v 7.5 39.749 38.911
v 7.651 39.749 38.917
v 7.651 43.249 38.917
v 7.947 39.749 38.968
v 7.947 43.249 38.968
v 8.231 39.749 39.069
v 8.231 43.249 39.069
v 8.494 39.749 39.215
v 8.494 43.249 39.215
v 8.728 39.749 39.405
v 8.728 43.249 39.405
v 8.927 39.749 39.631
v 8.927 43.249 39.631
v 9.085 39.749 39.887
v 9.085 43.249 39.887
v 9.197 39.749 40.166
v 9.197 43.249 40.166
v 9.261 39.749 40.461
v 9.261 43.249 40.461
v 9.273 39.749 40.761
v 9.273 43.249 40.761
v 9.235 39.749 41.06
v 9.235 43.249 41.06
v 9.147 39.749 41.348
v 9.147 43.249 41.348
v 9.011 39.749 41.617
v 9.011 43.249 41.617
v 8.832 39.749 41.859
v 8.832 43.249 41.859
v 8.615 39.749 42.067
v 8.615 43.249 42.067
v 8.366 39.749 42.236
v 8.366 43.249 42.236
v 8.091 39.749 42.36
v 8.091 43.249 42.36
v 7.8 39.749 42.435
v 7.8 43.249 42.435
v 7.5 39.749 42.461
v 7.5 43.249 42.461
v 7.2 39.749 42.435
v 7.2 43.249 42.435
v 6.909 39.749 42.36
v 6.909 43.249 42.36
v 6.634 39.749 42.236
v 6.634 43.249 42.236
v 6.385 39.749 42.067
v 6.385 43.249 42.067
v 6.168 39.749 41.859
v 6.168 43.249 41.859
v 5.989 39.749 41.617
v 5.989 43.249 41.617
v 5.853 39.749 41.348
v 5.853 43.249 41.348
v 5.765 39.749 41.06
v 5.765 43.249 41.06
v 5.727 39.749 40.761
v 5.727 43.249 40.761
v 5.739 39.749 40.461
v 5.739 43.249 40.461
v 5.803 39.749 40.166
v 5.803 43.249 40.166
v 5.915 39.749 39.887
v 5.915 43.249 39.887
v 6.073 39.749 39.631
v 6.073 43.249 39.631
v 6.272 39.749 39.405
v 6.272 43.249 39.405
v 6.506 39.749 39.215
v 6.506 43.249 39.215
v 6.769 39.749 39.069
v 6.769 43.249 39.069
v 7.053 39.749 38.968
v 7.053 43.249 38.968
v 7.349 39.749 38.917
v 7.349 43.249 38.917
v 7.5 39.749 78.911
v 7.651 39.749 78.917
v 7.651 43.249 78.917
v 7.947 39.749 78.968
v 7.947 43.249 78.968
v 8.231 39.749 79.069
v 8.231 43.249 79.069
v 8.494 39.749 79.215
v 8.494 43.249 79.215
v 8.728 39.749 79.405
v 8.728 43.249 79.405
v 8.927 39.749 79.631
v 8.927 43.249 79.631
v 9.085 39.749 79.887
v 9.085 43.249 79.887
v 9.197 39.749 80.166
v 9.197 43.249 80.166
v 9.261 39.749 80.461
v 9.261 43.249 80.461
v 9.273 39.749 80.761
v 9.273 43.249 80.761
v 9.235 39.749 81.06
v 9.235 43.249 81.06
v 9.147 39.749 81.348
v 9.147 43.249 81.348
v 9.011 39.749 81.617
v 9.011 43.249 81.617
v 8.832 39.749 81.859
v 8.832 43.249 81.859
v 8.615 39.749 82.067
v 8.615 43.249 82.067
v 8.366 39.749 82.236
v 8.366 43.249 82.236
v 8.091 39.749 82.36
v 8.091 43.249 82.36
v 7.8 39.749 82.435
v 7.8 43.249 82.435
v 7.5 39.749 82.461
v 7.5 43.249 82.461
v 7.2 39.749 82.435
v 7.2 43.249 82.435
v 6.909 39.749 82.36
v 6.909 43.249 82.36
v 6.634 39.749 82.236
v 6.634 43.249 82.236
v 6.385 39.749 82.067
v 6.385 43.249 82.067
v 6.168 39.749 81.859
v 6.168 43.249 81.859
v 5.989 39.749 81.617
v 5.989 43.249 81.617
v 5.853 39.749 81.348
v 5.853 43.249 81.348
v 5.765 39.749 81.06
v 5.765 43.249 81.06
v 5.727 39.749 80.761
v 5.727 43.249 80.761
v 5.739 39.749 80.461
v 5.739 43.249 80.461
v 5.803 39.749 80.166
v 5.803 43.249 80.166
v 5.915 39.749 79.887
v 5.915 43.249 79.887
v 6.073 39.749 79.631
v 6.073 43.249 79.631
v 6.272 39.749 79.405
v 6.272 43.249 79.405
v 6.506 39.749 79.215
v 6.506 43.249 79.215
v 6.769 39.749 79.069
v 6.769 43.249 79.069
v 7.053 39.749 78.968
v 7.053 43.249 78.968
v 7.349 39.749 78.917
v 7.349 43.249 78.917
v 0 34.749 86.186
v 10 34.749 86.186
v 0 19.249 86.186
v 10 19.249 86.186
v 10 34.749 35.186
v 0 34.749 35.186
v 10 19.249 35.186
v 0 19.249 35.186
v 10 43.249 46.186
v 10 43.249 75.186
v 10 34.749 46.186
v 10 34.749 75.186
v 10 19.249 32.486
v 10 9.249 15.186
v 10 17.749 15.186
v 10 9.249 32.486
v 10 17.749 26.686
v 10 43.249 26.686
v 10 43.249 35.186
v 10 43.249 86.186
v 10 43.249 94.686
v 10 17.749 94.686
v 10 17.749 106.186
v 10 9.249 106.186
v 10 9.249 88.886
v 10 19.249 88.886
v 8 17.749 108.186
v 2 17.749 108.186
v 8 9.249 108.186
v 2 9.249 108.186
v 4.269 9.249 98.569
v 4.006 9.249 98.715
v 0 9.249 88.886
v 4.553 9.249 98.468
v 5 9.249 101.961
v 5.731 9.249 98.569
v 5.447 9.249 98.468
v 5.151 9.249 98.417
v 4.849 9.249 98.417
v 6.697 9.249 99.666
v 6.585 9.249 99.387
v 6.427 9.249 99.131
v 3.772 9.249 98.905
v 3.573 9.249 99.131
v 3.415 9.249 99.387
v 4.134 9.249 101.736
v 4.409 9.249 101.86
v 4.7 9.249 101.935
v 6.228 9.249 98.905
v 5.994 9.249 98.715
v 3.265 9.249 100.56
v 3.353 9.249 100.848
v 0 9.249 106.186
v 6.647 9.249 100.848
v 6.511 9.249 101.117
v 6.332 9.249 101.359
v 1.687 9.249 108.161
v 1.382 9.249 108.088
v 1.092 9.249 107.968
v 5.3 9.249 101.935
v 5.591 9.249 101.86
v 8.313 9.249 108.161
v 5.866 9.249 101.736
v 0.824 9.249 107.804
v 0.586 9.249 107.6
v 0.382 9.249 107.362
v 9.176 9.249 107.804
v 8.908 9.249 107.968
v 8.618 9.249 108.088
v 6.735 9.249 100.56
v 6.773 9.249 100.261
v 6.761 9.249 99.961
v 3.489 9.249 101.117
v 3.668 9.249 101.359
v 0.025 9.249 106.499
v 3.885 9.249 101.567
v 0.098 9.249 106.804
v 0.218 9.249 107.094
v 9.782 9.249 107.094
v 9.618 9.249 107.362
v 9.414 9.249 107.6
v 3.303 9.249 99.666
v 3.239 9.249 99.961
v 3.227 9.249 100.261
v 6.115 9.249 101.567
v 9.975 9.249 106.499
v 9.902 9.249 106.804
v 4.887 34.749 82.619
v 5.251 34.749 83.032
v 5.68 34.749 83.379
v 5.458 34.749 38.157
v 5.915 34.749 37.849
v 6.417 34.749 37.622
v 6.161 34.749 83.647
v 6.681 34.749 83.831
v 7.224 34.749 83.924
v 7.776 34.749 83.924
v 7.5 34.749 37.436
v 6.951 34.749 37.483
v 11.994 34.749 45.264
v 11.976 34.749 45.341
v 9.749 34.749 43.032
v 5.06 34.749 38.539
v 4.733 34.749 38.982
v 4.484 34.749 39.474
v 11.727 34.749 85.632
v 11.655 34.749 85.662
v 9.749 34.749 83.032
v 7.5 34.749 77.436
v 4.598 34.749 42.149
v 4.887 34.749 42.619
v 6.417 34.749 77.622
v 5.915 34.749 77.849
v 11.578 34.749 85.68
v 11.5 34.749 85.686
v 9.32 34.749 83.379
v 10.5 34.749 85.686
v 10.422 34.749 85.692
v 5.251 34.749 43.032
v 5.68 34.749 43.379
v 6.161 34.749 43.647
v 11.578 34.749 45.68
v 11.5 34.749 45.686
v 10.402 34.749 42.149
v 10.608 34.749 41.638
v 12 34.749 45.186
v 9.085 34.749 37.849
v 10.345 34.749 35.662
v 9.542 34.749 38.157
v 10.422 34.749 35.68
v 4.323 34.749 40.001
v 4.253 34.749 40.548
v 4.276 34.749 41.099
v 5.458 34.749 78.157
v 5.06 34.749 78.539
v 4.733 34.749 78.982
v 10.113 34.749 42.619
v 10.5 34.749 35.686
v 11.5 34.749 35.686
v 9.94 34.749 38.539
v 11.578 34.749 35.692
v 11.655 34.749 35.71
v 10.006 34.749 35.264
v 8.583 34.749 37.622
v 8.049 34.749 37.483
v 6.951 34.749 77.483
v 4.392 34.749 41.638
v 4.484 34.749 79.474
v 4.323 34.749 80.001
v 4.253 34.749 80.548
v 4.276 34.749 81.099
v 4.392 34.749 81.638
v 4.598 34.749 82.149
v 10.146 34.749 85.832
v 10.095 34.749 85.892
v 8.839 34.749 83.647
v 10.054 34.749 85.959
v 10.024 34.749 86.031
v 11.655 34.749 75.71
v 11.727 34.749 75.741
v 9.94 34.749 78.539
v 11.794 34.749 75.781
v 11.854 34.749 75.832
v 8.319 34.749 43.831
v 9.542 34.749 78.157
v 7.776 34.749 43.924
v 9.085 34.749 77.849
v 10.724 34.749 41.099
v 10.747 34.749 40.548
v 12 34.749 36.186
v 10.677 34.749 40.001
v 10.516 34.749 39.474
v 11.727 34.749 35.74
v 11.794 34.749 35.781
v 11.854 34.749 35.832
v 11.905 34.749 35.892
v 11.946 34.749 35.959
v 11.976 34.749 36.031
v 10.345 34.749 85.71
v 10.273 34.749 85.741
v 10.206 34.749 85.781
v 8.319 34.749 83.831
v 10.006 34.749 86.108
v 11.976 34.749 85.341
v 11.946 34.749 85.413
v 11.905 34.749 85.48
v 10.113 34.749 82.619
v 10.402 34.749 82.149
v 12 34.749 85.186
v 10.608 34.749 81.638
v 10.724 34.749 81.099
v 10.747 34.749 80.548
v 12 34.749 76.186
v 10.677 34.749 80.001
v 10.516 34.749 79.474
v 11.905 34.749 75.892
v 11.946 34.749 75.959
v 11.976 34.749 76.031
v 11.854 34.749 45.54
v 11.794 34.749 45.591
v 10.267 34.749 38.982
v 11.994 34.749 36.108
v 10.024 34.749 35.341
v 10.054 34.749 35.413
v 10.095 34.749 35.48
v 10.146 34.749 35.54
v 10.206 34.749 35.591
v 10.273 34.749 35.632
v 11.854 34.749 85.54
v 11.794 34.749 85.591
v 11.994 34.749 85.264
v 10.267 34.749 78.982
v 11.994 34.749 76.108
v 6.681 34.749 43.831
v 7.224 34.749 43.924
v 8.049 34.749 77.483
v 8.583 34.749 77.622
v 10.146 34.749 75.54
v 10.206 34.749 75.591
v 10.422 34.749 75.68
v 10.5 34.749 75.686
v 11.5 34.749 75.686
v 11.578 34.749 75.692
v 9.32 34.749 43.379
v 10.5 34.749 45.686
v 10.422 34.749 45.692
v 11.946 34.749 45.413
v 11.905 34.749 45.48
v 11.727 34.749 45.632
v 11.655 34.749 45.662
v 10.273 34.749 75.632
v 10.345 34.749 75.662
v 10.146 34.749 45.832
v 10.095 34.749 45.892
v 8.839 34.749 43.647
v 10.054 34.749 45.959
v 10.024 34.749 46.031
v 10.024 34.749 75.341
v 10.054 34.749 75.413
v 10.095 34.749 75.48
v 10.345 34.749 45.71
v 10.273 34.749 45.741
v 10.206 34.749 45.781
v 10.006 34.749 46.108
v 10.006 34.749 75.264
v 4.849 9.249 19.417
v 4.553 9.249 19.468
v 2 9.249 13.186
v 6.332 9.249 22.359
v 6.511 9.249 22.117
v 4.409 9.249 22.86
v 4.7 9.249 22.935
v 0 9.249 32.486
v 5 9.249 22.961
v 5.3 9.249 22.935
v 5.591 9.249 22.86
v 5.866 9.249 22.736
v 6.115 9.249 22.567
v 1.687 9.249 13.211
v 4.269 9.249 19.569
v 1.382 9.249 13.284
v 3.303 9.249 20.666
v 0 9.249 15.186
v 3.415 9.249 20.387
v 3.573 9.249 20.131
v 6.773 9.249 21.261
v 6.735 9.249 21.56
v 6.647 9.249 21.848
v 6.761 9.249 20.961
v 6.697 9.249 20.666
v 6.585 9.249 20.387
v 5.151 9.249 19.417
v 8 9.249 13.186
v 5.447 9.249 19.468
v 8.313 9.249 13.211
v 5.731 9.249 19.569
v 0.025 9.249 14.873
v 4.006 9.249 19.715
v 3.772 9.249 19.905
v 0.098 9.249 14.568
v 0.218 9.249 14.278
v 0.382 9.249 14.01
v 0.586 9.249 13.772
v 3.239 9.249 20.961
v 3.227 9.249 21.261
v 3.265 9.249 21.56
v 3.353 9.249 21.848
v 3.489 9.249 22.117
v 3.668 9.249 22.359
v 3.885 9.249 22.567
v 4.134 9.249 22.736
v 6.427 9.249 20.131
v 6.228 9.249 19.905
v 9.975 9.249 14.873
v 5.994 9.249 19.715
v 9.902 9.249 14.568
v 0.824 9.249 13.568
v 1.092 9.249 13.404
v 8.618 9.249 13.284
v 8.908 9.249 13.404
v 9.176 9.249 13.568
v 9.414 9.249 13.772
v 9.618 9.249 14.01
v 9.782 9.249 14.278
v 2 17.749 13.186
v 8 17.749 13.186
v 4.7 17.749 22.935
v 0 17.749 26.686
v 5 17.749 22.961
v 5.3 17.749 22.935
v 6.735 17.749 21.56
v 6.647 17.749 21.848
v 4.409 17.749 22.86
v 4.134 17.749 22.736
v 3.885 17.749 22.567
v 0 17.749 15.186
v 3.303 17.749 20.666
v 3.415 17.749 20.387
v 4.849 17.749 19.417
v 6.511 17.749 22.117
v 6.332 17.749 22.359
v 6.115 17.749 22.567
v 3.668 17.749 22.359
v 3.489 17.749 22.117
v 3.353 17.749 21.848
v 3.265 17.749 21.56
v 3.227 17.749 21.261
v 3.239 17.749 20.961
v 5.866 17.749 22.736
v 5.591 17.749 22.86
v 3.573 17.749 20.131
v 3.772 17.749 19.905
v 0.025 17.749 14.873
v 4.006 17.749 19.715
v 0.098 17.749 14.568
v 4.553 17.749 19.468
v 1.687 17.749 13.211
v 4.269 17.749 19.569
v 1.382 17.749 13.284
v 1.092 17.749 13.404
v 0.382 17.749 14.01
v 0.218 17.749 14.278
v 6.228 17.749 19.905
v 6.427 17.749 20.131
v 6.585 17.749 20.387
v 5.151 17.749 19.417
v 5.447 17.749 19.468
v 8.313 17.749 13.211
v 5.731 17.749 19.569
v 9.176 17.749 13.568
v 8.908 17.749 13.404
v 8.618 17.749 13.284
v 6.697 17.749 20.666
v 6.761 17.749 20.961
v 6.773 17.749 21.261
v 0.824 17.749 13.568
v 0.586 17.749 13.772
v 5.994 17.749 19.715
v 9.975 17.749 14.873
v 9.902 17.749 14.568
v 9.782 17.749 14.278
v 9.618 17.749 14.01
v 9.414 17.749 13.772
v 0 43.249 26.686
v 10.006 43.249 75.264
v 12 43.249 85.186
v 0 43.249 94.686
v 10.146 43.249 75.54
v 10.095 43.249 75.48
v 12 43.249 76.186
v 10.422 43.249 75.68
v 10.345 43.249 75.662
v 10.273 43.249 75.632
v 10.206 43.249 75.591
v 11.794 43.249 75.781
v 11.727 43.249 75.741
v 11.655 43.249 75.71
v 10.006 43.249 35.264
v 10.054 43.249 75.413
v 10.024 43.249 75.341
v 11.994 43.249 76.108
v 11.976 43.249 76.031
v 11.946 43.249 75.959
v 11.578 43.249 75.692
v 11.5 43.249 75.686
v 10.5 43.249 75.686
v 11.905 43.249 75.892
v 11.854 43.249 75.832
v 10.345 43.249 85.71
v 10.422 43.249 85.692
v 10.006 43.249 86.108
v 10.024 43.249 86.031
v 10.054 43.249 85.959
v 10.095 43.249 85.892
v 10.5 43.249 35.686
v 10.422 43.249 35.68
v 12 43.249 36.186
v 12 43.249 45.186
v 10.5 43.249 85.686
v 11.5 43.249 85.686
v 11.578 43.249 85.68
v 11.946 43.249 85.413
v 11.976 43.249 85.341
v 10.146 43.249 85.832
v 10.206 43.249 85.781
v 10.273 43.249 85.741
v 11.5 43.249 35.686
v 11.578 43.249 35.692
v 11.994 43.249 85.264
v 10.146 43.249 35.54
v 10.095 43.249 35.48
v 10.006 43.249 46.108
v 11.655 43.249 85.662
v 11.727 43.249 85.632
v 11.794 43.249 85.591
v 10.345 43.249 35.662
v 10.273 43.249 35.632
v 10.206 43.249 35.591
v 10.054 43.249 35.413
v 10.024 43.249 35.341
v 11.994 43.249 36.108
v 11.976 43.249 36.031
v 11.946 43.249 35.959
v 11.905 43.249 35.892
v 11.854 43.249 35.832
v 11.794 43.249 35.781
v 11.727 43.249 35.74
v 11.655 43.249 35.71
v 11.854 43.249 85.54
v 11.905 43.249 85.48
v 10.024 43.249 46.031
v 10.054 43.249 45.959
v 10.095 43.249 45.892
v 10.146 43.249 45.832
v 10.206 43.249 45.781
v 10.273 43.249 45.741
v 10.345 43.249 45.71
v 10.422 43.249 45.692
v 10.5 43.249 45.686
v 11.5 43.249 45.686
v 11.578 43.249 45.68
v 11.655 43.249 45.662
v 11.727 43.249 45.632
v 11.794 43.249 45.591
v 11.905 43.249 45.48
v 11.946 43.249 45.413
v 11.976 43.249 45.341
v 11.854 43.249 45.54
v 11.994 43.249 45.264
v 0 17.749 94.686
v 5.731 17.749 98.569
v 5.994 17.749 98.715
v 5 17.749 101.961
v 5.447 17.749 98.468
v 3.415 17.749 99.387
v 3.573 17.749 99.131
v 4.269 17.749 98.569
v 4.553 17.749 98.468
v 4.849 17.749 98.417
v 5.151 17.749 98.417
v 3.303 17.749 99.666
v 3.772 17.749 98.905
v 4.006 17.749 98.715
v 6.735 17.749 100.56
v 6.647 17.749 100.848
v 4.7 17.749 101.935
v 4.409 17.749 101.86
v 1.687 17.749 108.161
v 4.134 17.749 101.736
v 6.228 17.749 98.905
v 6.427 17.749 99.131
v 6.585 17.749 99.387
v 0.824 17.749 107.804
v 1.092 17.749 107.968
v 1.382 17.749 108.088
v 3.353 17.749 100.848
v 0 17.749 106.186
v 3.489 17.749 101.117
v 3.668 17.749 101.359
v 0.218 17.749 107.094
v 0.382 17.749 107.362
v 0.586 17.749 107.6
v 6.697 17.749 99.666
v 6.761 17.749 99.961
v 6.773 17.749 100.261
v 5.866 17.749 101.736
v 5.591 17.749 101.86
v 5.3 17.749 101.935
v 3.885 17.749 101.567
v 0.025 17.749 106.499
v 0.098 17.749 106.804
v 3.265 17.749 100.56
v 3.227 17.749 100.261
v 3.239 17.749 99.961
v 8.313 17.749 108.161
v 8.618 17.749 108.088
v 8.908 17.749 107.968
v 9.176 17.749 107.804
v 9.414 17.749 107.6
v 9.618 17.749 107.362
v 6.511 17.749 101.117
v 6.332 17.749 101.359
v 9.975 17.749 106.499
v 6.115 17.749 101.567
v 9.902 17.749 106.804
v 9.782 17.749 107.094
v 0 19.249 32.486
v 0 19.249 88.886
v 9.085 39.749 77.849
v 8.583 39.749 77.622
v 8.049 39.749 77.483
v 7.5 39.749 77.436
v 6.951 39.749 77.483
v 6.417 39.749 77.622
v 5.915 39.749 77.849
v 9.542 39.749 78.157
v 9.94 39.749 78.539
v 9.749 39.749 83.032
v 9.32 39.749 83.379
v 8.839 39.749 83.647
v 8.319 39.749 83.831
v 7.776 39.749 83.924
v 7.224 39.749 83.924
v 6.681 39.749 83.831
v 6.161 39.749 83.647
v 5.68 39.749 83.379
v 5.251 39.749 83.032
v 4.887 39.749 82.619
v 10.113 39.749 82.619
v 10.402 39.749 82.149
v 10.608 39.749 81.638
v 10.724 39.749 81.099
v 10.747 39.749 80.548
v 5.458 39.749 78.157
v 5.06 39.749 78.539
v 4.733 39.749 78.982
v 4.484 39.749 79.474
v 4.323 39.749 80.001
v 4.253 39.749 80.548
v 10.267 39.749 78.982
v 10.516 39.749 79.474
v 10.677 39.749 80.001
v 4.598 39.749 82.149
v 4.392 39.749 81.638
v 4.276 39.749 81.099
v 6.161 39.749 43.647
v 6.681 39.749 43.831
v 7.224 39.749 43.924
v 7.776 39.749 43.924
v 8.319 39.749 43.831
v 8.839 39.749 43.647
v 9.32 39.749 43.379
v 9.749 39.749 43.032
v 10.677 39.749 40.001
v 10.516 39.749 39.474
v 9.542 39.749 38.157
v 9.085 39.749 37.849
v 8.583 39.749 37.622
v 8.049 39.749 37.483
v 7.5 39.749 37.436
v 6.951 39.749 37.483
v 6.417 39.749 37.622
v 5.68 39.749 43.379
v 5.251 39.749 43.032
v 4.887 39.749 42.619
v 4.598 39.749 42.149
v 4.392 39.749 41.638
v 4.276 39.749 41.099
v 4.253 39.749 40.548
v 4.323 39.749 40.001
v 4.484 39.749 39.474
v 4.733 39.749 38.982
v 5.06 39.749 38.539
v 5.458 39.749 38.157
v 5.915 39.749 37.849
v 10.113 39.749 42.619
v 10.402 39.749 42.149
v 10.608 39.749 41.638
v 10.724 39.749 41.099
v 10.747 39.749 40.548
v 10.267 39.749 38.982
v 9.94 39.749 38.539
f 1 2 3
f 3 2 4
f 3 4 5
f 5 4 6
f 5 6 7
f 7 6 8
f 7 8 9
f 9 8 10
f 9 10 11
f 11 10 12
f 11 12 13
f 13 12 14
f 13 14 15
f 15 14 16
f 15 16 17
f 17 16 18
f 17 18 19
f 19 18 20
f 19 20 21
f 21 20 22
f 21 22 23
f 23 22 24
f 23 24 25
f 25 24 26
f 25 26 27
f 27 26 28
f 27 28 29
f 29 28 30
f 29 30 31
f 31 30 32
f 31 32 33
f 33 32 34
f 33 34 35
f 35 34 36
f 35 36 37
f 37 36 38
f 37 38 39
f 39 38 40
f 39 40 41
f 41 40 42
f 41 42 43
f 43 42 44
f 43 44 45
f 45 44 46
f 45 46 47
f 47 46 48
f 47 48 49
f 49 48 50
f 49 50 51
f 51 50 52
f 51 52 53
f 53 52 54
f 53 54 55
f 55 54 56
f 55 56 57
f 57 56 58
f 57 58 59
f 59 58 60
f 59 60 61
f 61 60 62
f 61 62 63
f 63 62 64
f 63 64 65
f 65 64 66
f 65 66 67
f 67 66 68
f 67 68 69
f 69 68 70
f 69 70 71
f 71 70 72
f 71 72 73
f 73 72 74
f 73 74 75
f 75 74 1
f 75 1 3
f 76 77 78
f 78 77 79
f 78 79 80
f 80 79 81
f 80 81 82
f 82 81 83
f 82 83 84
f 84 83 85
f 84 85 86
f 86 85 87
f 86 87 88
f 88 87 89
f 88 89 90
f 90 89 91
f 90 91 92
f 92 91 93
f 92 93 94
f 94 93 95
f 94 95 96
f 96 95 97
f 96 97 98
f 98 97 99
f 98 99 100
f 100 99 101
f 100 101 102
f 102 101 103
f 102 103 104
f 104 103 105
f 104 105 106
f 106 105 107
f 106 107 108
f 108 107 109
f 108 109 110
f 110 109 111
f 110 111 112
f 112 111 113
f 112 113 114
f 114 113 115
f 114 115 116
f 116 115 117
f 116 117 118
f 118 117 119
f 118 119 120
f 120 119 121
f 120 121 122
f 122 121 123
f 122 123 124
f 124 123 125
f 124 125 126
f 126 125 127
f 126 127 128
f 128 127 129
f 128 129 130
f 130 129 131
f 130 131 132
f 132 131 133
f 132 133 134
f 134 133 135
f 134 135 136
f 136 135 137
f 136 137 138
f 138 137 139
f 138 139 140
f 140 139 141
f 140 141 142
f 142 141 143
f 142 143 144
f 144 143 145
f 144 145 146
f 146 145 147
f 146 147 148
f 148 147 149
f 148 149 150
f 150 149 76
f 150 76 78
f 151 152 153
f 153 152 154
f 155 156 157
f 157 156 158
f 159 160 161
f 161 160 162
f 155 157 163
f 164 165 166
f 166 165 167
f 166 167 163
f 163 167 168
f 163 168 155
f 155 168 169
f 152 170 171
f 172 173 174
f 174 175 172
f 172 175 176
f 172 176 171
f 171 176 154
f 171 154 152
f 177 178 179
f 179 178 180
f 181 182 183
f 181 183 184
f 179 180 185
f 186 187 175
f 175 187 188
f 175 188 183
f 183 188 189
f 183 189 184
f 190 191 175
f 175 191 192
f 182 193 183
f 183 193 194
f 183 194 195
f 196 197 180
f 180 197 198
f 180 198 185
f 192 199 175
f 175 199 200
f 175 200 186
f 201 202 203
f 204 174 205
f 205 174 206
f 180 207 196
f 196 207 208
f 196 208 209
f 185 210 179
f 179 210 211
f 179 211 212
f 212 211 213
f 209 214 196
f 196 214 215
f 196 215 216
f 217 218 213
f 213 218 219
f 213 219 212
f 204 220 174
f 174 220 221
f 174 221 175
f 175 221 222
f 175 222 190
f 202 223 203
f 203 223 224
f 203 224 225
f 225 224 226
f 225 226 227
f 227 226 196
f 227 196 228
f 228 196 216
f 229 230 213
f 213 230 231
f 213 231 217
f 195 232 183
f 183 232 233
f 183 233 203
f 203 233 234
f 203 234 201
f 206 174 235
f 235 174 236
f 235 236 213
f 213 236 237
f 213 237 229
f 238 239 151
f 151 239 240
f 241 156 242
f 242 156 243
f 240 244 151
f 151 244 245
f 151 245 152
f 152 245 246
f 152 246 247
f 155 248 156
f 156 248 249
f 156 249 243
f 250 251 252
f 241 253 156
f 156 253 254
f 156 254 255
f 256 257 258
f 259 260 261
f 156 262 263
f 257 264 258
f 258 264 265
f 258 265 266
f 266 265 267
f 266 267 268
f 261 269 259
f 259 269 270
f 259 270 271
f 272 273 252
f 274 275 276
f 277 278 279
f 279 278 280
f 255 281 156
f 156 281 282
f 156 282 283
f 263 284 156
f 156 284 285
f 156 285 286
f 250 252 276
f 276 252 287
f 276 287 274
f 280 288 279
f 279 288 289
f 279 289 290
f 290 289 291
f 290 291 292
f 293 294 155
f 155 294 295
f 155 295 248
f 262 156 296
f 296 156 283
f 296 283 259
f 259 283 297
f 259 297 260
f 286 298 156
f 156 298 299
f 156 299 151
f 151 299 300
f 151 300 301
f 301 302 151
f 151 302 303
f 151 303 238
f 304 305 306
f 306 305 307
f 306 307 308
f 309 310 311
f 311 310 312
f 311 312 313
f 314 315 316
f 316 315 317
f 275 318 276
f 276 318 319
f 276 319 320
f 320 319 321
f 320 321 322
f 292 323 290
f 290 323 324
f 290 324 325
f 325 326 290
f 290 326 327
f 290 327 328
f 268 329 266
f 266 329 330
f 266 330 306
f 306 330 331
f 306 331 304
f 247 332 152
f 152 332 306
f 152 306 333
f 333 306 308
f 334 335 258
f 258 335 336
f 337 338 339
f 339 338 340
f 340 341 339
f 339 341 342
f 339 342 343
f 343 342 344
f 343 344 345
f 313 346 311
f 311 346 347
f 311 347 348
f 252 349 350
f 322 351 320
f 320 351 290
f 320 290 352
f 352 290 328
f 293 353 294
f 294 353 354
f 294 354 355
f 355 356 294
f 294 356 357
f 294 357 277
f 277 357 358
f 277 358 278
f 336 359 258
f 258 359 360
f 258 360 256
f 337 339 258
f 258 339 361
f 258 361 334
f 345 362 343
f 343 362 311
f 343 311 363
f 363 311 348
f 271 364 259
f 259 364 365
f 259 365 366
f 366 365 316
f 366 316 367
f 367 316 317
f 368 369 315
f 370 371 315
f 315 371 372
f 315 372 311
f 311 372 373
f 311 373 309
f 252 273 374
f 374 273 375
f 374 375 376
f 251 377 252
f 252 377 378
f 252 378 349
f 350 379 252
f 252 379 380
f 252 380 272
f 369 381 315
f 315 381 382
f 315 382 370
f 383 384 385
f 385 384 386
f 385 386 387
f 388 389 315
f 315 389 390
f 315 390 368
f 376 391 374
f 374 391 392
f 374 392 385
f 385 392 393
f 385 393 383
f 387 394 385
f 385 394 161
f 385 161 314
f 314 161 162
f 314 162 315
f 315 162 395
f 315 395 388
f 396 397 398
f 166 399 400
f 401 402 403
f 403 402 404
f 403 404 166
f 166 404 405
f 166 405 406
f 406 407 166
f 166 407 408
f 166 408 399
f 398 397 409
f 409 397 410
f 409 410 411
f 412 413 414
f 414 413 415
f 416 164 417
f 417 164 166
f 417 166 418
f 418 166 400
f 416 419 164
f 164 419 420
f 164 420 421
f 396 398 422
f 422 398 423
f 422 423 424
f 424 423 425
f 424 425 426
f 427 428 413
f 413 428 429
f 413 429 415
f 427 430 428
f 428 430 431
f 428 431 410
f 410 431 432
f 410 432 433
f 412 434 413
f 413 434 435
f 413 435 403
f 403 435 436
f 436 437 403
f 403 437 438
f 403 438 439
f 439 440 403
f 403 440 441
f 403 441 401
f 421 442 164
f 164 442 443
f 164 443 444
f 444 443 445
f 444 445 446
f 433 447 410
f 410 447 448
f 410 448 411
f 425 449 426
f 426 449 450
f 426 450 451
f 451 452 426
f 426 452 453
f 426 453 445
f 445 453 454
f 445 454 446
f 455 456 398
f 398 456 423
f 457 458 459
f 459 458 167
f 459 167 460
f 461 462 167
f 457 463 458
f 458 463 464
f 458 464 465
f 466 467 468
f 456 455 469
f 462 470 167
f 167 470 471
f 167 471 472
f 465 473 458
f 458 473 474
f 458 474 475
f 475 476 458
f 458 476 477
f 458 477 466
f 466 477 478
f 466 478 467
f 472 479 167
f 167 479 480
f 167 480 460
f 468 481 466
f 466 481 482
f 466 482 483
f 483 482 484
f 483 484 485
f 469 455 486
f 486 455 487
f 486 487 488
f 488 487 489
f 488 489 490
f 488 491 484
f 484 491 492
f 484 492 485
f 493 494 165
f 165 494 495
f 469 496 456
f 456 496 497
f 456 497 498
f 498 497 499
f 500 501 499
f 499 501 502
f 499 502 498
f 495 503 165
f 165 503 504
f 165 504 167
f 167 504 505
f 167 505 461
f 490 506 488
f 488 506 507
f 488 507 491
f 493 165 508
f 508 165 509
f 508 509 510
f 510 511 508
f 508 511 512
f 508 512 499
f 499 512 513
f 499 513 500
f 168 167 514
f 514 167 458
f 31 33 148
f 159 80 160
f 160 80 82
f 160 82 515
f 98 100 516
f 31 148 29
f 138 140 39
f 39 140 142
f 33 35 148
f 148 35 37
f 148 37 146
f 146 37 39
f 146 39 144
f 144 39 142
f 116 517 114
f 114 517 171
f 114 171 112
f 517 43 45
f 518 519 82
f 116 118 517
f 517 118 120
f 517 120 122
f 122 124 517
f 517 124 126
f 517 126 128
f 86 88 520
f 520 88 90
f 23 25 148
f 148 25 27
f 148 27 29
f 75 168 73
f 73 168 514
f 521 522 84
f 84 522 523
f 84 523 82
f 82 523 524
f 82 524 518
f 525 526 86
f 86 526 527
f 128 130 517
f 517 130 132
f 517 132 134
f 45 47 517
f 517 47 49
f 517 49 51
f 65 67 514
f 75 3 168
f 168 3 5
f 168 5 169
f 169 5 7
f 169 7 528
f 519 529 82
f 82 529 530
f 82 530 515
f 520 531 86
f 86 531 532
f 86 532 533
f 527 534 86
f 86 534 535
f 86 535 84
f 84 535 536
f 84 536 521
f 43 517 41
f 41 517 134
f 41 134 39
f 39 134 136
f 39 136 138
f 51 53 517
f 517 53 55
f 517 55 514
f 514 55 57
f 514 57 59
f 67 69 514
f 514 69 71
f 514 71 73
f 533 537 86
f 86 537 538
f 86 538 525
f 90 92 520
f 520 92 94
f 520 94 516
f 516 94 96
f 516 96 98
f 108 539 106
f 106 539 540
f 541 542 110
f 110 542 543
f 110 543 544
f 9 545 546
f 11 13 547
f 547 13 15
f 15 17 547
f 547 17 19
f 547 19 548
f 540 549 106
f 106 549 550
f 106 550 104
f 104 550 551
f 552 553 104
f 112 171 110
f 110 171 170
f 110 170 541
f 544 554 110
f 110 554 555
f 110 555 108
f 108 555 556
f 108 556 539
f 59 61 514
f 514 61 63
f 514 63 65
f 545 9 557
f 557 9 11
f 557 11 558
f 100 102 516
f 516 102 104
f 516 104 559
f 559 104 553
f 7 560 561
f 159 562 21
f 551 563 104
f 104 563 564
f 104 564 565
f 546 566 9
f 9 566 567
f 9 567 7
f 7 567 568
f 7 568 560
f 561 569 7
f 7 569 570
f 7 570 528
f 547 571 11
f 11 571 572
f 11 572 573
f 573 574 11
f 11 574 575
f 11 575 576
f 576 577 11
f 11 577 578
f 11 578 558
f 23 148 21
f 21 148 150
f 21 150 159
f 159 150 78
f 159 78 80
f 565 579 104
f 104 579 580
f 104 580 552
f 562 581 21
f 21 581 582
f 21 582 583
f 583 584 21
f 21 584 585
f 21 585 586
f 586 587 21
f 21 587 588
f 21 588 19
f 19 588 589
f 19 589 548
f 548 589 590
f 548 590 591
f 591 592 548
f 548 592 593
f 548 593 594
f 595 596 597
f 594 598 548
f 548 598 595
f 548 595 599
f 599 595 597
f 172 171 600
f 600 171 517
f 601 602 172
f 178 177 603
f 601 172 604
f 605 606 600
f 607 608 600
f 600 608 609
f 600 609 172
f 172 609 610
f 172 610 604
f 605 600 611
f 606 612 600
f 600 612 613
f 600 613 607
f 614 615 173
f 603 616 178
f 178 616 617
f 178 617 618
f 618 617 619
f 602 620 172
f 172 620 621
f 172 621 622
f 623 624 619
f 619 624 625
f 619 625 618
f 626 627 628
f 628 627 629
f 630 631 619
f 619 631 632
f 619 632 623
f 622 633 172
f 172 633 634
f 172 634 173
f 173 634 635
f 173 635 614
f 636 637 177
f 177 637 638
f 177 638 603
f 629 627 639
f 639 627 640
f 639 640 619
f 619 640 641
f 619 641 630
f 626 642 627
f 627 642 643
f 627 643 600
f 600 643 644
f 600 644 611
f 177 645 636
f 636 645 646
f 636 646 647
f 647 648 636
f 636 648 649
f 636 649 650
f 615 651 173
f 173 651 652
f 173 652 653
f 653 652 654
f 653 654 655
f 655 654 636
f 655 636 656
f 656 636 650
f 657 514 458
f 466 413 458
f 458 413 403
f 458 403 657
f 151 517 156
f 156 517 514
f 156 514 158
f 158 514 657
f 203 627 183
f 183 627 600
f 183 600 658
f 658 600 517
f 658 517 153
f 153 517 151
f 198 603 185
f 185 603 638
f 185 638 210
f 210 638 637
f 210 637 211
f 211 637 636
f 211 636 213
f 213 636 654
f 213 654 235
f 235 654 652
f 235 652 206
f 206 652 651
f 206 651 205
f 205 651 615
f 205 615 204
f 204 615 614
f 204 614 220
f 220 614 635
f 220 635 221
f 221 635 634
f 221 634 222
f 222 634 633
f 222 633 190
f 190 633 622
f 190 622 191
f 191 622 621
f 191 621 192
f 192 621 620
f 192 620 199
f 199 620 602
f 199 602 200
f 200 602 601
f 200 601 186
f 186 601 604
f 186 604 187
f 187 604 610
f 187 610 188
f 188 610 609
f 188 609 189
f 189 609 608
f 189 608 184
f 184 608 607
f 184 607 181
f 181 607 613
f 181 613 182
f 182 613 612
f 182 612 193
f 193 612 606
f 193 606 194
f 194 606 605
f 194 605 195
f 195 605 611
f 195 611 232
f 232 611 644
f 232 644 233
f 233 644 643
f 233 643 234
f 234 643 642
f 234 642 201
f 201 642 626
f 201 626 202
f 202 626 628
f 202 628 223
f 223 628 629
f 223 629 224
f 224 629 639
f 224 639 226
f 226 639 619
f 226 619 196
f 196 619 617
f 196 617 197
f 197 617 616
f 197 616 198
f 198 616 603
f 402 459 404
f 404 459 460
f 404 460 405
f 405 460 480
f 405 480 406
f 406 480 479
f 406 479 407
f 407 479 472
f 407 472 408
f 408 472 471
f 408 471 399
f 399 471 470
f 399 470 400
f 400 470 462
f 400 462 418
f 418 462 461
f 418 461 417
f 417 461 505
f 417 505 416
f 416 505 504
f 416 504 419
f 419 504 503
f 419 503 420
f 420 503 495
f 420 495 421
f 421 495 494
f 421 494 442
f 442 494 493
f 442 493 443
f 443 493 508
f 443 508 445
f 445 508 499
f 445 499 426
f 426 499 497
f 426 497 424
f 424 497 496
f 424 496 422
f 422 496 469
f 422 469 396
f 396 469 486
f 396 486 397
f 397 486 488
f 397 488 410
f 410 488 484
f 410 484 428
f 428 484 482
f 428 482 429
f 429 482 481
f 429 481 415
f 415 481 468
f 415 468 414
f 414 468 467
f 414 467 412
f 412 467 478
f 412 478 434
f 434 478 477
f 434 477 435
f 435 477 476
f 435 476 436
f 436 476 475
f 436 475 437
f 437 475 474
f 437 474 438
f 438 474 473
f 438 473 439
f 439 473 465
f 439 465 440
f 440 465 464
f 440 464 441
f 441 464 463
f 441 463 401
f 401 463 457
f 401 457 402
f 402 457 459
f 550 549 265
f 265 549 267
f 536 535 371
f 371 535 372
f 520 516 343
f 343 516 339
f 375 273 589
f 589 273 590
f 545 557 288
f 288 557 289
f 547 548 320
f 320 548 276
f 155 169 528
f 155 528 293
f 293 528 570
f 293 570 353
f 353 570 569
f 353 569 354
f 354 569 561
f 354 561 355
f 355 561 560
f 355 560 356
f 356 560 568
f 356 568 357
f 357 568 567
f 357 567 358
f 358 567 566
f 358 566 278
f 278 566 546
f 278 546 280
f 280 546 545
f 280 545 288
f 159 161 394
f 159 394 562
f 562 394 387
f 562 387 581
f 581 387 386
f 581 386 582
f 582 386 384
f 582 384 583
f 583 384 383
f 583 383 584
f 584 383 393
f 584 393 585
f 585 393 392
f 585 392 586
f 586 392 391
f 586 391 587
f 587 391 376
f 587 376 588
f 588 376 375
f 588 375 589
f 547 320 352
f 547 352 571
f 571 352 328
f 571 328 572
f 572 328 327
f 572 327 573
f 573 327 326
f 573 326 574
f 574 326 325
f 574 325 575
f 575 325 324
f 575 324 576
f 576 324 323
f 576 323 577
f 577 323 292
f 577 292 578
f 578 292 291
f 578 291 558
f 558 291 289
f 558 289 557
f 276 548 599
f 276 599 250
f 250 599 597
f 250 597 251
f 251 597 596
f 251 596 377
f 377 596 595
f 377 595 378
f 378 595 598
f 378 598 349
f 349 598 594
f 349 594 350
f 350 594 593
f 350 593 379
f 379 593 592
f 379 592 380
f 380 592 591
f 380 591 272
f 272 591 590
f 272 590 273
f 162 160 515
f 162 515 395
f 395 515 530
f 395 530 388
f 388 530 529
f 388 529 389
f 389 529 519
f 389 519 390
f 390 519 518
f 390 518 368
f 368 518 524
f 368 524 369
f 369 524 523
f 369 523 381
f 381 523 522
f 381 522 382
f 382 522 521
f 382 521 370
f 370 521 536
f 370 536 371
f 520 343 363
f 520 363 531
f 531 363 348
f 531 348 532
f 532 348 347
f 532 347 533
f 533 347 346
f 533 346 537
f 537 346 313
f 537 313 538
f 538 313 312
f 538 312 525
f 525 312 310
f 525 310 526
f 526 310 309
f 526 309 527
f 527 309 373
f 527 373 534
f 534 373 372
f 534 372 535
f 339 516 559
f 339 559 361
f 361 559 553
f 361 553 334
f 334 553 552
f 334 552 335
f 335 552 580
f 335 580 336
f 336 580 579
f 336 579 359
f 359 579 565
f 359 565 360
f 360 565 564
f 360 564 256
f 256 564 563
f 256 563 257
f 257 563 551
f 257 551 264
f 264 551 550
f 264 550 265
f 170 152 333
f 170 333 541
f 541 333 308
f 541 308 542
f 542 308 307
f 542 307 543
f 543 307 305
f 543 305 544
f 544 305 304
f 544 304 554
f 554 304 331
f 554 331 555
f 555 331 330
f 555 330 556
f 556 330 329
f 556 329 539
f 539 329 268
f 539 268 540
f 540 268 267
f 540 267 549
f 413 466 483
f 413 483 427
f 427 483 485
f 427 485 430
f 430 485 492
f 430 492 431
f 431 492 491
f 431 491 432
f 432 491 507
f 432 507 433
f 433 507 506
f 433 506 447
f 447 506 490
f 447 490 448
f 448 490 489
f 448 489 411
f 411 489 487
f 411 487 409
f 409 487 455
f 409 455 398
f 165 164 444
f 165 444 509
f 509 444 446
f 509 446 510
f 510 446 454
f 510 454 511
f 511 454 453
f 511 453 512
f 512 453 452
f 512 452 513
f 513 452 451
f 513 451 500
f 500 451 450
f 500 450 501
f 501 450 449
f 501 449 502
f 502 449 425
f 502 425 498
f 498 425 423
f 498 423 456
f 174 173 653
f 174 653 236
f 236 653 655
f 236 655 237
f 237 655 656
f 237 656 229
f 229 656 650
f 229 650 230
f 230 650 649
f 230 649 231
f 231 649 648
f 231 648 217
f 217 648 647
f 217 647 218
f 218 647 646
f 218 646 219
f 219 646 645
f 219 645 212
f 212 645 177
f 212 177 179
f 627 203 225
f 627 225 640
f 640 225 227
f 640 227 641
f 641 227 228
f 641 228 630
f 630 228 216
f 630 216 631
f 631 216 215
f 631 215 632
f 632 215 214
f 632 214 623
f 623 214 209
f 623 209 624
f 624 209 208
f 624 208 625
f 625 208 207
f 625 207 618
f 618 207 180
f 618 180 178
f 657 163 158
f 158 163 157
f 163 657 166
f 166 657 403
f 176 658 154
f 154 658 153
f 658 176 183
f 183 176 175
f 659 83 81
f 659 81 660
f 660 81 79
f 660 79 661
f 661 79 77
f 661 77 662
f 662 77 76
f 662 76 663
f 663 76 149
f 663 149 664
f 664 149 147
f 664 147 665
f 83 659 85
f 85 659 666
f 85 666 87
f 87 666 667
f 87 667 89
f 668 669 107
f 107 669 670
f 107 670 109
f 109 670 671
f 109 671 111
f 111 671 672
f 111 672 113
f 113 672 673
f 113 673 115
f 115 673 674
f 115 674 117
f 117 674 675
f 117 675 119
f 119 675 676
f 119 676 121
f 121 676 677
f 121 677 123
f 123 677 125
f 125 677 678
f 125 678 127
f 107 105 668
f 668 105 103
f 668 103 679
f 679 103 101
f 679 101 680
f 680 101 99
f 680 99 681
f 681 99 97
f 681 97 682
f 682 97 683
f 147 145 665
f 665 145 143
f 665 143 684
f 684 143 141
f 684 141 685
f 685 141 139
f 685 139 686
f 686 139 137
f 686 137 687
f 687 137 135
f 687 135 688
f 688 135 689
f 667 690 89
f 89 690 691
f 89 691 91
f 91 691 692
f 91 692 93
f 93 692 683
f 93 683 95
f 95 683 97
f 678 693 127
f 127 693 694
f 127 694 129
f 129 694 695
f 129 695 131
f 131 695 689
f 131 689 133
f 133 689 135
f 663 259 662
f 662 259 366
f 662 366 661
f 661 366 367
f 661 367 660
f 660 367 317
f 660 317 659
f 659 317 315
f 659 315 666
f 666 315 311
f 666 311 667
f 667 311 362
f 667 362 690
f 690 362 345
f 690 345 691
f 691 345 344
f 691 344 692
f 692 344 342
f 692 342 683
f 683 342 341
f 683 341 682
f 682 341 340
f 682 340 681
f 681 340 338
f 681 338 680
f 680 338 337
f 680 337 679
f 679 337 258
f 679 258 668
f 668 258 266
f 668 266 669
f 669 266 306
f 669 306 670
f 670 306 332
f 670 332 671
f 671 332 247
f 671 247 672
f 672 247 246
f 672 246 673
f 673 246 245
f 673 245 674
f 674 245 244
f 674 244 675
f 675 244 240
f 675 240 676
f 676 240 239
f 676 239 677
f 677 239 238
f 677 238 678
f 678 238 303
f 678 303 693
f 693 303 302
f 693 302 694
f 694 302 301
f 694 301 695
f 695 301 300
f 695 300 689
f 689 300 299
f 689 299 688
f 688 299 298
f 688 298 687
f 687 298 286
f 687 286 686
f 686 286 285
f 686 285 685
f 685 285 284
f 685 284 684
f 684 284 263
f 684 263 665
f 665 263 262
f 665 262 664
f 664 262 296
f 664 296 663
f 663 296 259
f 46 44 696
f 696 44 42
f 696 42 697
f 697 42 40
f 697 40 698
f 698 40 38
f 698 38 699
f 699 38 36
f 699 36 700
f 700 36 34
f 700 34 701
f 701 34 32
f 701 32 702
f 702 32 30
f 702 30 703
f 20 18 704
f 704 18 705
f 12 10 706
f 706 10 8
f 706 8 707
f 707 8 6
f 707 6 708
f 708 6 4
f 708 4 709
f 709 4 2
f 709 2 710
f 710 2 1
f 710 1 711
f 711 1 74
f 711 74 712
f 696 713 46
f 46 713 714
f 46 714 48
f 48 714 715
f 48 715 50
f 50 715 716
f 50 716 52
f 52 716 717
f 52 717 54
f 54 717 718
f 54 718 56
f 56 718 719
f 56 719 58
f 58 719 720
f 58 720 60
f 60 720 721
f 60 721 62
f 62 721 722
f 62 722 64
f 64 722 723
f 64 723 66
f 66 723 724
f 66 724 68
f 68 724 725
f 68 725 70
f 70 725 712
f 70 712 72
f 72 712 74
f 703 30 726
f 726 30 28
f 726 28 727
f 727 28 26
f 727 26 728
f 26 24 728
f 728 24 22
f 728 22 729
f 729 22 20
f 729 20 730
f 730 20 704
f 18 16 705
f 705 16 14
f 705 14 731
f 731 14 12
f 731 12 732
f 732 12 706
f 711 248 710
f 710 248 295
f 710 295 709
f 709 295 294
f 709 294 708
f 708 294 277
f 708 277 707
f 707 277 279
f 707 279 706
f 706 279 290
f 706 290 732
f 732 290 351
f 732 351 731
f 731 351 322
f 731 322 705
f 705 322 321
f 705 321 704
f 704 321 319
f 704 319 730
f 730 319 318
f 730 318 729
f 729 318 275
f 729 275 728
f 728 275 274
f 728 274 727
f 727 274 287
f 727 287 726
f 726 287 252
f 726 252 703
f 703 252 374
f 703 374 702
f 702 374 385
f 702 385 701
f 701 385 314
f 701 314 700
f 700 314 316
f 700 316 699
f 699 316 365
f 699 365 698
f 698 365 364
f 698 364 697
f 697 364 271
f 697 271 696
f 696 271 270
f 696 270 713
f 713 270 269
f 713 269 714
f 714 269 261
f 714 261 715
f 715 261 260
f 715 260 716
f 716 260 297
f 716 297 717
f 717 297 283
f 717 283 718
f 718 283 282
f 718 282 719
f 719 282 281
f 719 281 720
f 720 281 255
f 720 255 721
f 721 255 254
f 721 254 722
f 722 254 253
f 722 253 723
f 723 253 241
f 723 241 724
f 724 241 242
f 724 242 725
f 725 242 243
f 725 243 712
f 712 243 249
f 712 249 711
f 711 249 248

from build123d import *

# Parameters (mm, degrees)
BOSS_EXTRUDE1_DEPTH = 10
SKETCH2_R           = 1.775
CUT_EXTRUDE1_DEPTH  = 112.599557576
SKETCH3_W           = 10
SKETCH3_H           = 8.5
BOSS_EXTRUDE2_DEPTH = 2
SKETCH4_R           = 1.775
CUT_EXTRUDE2_DEPTH  = 115.036008573
FILLET2_R           = 0.5
FILLET3_R           = 2
SKETCH5_W           = 10
SKETCH5_H           = 56.4
CUT_EXTRUDE3_DEPTH  = 10
SKETCH6_R           = 3.25
CUT_EXTRUDE4_DEPTH  = 5


with BuildPart() as part:
    # Sketch1 → Boss-Extrude1 (new body)
    with BuildSketch(Plane(origin=(0, 0, 0), x_dir=(0, 0, -1), z_dir=(1, 0, 0))):
        Polygon((-108.186003028, 9.249121329), (-86.186003028, 9.249121329), (-86.186003028, 34.749121329), (-35.186003028, 34.749121329), (-35.186003028, 9.249121329), (-13.186003028, 9.249121329), (-13.186003028, 17.749121329), (-26.686003028, 17.749121329), (-26.686003028, 43.249121329), (-94.686003028, 43.249121329), (-94.686003028, 17.749121329), (-108.186003028, 17.749121329), align=None)
    extrude(amount=BOSS_EXTRUDE1_DEPTH)

    # Sketch2 → Cut-Extrude1 (cut, through all)
    with BuildSketch(Plane(origin=(0, 17.749121329, 0), x_dir=(1, 0, 0), z_dir=(0, 1, 0))):
        with Locations(Location((5, -100.186003028, 0), (0, 0, 270))):
            Circle(SKETCH2_R)
        with Locations(Location((5, -21.186003028, 0), (0, 0, 270))):
            Circle(SKETCH2_R)
    extrude(amount=-CUT_EXTRUDE1_DEPTH, mode=Mode.SUBTRACT)

    # Sketch3 → Boss-Extrude2 (add)
    with BuildSketch(Plane(origin=(10, 0, 0), x_dir=(0, 0, -1), z_dir=(1, 0, 0))):
        with Locations((-80.686003028, 38.999121329)):
            Rectangle(SKETCH3_W, SKETCH3_H)
        with Locations((-40.686003028, 38.999121329)):
            Rectangle(SKETCH3_W, SKETCH3_H)
    extrude(amount=BOSS_EXTRUDE2_DEPTH)

    # Sketch4 → Cut-Extrude2 (cut, through all)
    with BuildSketch(Plane(origin=(0, 43.249121329, 0), x_dir=(1, 0, 0), z_dir=(0, 1, 0))):
        with Locations(Location((7.5, -80.686003028, 0), (0, 0, 270))):
            Circle(SKETCH4_R)
        with Locations(Location((7.5, -40.686003028, 0), (0, 0, 270))):
            Circle(SKETCH4_R)
    extrude(amount=-CUT_EXTRUDE2_DEPTH, mode=Mode.SUBTRACT)

    # Fillet2
    fillet2_edges = [part.edges().sort_by_distance(p)[0] for p in [
        (10, 38.999121329, 35.686003028),
        (10, 38.999121329, 45.686003028),
        (12, 38.999121329, 35.686003028),
        (12, 38.999121329, 45.686003028),
        (10, 38.999121329, 75.686003028),
        (12, 38.999121329, 75.686003028),
        (12, 38.999121329, 85.686003028),
        (10, 38.999121329, 85.686003028),
    ]]
    fillet(fillet2_edges, radius=FILLET2_R)

    # Fillet3
    fillet3_edges = [part.edges().sort_by_distance(p)[0] for p in [
        (0, 13.499121329, 13.186003028),
        (0, 13.499121329, 108.186003028),
        (10, 13.499121329, 13.186003028),
        (10, 13.499121329, 108.186003028),
    ]]
    fillet(fillet3_edges, radius=FILLET3_R)

    # Sketch5 → Cut-Extrude3 (cut)
    with BuildSketch(Plane.XZ.offset(-9.249121329)):
        with Locations((5, 60.686003028)):
            Rectangle(SKETCH5_W, SKETCH5_H)
    extrude(amount=-CUT_EXTRUDE3_DEPTH, mode=Mode.SUBTRACT)

    # Sketch6 → Cut-Extrude4 (cut)
    with BuildSketch(Plane.XZ.offset(-34.749121329)):
        with Locations(Location((7.5, 80.686003028, 0), (0, 0, 270))):
            Circle(SKETCH6_R)
        with Locations(Location((7.5, 40.686003028, 0), (0, 0, 270))):
            Circle(SKETCH6_R)
    extrude(amount=-CUT_EXTRUDE4_DEPTH, mode=Mode.SUBTRACT)


solid = part.part
